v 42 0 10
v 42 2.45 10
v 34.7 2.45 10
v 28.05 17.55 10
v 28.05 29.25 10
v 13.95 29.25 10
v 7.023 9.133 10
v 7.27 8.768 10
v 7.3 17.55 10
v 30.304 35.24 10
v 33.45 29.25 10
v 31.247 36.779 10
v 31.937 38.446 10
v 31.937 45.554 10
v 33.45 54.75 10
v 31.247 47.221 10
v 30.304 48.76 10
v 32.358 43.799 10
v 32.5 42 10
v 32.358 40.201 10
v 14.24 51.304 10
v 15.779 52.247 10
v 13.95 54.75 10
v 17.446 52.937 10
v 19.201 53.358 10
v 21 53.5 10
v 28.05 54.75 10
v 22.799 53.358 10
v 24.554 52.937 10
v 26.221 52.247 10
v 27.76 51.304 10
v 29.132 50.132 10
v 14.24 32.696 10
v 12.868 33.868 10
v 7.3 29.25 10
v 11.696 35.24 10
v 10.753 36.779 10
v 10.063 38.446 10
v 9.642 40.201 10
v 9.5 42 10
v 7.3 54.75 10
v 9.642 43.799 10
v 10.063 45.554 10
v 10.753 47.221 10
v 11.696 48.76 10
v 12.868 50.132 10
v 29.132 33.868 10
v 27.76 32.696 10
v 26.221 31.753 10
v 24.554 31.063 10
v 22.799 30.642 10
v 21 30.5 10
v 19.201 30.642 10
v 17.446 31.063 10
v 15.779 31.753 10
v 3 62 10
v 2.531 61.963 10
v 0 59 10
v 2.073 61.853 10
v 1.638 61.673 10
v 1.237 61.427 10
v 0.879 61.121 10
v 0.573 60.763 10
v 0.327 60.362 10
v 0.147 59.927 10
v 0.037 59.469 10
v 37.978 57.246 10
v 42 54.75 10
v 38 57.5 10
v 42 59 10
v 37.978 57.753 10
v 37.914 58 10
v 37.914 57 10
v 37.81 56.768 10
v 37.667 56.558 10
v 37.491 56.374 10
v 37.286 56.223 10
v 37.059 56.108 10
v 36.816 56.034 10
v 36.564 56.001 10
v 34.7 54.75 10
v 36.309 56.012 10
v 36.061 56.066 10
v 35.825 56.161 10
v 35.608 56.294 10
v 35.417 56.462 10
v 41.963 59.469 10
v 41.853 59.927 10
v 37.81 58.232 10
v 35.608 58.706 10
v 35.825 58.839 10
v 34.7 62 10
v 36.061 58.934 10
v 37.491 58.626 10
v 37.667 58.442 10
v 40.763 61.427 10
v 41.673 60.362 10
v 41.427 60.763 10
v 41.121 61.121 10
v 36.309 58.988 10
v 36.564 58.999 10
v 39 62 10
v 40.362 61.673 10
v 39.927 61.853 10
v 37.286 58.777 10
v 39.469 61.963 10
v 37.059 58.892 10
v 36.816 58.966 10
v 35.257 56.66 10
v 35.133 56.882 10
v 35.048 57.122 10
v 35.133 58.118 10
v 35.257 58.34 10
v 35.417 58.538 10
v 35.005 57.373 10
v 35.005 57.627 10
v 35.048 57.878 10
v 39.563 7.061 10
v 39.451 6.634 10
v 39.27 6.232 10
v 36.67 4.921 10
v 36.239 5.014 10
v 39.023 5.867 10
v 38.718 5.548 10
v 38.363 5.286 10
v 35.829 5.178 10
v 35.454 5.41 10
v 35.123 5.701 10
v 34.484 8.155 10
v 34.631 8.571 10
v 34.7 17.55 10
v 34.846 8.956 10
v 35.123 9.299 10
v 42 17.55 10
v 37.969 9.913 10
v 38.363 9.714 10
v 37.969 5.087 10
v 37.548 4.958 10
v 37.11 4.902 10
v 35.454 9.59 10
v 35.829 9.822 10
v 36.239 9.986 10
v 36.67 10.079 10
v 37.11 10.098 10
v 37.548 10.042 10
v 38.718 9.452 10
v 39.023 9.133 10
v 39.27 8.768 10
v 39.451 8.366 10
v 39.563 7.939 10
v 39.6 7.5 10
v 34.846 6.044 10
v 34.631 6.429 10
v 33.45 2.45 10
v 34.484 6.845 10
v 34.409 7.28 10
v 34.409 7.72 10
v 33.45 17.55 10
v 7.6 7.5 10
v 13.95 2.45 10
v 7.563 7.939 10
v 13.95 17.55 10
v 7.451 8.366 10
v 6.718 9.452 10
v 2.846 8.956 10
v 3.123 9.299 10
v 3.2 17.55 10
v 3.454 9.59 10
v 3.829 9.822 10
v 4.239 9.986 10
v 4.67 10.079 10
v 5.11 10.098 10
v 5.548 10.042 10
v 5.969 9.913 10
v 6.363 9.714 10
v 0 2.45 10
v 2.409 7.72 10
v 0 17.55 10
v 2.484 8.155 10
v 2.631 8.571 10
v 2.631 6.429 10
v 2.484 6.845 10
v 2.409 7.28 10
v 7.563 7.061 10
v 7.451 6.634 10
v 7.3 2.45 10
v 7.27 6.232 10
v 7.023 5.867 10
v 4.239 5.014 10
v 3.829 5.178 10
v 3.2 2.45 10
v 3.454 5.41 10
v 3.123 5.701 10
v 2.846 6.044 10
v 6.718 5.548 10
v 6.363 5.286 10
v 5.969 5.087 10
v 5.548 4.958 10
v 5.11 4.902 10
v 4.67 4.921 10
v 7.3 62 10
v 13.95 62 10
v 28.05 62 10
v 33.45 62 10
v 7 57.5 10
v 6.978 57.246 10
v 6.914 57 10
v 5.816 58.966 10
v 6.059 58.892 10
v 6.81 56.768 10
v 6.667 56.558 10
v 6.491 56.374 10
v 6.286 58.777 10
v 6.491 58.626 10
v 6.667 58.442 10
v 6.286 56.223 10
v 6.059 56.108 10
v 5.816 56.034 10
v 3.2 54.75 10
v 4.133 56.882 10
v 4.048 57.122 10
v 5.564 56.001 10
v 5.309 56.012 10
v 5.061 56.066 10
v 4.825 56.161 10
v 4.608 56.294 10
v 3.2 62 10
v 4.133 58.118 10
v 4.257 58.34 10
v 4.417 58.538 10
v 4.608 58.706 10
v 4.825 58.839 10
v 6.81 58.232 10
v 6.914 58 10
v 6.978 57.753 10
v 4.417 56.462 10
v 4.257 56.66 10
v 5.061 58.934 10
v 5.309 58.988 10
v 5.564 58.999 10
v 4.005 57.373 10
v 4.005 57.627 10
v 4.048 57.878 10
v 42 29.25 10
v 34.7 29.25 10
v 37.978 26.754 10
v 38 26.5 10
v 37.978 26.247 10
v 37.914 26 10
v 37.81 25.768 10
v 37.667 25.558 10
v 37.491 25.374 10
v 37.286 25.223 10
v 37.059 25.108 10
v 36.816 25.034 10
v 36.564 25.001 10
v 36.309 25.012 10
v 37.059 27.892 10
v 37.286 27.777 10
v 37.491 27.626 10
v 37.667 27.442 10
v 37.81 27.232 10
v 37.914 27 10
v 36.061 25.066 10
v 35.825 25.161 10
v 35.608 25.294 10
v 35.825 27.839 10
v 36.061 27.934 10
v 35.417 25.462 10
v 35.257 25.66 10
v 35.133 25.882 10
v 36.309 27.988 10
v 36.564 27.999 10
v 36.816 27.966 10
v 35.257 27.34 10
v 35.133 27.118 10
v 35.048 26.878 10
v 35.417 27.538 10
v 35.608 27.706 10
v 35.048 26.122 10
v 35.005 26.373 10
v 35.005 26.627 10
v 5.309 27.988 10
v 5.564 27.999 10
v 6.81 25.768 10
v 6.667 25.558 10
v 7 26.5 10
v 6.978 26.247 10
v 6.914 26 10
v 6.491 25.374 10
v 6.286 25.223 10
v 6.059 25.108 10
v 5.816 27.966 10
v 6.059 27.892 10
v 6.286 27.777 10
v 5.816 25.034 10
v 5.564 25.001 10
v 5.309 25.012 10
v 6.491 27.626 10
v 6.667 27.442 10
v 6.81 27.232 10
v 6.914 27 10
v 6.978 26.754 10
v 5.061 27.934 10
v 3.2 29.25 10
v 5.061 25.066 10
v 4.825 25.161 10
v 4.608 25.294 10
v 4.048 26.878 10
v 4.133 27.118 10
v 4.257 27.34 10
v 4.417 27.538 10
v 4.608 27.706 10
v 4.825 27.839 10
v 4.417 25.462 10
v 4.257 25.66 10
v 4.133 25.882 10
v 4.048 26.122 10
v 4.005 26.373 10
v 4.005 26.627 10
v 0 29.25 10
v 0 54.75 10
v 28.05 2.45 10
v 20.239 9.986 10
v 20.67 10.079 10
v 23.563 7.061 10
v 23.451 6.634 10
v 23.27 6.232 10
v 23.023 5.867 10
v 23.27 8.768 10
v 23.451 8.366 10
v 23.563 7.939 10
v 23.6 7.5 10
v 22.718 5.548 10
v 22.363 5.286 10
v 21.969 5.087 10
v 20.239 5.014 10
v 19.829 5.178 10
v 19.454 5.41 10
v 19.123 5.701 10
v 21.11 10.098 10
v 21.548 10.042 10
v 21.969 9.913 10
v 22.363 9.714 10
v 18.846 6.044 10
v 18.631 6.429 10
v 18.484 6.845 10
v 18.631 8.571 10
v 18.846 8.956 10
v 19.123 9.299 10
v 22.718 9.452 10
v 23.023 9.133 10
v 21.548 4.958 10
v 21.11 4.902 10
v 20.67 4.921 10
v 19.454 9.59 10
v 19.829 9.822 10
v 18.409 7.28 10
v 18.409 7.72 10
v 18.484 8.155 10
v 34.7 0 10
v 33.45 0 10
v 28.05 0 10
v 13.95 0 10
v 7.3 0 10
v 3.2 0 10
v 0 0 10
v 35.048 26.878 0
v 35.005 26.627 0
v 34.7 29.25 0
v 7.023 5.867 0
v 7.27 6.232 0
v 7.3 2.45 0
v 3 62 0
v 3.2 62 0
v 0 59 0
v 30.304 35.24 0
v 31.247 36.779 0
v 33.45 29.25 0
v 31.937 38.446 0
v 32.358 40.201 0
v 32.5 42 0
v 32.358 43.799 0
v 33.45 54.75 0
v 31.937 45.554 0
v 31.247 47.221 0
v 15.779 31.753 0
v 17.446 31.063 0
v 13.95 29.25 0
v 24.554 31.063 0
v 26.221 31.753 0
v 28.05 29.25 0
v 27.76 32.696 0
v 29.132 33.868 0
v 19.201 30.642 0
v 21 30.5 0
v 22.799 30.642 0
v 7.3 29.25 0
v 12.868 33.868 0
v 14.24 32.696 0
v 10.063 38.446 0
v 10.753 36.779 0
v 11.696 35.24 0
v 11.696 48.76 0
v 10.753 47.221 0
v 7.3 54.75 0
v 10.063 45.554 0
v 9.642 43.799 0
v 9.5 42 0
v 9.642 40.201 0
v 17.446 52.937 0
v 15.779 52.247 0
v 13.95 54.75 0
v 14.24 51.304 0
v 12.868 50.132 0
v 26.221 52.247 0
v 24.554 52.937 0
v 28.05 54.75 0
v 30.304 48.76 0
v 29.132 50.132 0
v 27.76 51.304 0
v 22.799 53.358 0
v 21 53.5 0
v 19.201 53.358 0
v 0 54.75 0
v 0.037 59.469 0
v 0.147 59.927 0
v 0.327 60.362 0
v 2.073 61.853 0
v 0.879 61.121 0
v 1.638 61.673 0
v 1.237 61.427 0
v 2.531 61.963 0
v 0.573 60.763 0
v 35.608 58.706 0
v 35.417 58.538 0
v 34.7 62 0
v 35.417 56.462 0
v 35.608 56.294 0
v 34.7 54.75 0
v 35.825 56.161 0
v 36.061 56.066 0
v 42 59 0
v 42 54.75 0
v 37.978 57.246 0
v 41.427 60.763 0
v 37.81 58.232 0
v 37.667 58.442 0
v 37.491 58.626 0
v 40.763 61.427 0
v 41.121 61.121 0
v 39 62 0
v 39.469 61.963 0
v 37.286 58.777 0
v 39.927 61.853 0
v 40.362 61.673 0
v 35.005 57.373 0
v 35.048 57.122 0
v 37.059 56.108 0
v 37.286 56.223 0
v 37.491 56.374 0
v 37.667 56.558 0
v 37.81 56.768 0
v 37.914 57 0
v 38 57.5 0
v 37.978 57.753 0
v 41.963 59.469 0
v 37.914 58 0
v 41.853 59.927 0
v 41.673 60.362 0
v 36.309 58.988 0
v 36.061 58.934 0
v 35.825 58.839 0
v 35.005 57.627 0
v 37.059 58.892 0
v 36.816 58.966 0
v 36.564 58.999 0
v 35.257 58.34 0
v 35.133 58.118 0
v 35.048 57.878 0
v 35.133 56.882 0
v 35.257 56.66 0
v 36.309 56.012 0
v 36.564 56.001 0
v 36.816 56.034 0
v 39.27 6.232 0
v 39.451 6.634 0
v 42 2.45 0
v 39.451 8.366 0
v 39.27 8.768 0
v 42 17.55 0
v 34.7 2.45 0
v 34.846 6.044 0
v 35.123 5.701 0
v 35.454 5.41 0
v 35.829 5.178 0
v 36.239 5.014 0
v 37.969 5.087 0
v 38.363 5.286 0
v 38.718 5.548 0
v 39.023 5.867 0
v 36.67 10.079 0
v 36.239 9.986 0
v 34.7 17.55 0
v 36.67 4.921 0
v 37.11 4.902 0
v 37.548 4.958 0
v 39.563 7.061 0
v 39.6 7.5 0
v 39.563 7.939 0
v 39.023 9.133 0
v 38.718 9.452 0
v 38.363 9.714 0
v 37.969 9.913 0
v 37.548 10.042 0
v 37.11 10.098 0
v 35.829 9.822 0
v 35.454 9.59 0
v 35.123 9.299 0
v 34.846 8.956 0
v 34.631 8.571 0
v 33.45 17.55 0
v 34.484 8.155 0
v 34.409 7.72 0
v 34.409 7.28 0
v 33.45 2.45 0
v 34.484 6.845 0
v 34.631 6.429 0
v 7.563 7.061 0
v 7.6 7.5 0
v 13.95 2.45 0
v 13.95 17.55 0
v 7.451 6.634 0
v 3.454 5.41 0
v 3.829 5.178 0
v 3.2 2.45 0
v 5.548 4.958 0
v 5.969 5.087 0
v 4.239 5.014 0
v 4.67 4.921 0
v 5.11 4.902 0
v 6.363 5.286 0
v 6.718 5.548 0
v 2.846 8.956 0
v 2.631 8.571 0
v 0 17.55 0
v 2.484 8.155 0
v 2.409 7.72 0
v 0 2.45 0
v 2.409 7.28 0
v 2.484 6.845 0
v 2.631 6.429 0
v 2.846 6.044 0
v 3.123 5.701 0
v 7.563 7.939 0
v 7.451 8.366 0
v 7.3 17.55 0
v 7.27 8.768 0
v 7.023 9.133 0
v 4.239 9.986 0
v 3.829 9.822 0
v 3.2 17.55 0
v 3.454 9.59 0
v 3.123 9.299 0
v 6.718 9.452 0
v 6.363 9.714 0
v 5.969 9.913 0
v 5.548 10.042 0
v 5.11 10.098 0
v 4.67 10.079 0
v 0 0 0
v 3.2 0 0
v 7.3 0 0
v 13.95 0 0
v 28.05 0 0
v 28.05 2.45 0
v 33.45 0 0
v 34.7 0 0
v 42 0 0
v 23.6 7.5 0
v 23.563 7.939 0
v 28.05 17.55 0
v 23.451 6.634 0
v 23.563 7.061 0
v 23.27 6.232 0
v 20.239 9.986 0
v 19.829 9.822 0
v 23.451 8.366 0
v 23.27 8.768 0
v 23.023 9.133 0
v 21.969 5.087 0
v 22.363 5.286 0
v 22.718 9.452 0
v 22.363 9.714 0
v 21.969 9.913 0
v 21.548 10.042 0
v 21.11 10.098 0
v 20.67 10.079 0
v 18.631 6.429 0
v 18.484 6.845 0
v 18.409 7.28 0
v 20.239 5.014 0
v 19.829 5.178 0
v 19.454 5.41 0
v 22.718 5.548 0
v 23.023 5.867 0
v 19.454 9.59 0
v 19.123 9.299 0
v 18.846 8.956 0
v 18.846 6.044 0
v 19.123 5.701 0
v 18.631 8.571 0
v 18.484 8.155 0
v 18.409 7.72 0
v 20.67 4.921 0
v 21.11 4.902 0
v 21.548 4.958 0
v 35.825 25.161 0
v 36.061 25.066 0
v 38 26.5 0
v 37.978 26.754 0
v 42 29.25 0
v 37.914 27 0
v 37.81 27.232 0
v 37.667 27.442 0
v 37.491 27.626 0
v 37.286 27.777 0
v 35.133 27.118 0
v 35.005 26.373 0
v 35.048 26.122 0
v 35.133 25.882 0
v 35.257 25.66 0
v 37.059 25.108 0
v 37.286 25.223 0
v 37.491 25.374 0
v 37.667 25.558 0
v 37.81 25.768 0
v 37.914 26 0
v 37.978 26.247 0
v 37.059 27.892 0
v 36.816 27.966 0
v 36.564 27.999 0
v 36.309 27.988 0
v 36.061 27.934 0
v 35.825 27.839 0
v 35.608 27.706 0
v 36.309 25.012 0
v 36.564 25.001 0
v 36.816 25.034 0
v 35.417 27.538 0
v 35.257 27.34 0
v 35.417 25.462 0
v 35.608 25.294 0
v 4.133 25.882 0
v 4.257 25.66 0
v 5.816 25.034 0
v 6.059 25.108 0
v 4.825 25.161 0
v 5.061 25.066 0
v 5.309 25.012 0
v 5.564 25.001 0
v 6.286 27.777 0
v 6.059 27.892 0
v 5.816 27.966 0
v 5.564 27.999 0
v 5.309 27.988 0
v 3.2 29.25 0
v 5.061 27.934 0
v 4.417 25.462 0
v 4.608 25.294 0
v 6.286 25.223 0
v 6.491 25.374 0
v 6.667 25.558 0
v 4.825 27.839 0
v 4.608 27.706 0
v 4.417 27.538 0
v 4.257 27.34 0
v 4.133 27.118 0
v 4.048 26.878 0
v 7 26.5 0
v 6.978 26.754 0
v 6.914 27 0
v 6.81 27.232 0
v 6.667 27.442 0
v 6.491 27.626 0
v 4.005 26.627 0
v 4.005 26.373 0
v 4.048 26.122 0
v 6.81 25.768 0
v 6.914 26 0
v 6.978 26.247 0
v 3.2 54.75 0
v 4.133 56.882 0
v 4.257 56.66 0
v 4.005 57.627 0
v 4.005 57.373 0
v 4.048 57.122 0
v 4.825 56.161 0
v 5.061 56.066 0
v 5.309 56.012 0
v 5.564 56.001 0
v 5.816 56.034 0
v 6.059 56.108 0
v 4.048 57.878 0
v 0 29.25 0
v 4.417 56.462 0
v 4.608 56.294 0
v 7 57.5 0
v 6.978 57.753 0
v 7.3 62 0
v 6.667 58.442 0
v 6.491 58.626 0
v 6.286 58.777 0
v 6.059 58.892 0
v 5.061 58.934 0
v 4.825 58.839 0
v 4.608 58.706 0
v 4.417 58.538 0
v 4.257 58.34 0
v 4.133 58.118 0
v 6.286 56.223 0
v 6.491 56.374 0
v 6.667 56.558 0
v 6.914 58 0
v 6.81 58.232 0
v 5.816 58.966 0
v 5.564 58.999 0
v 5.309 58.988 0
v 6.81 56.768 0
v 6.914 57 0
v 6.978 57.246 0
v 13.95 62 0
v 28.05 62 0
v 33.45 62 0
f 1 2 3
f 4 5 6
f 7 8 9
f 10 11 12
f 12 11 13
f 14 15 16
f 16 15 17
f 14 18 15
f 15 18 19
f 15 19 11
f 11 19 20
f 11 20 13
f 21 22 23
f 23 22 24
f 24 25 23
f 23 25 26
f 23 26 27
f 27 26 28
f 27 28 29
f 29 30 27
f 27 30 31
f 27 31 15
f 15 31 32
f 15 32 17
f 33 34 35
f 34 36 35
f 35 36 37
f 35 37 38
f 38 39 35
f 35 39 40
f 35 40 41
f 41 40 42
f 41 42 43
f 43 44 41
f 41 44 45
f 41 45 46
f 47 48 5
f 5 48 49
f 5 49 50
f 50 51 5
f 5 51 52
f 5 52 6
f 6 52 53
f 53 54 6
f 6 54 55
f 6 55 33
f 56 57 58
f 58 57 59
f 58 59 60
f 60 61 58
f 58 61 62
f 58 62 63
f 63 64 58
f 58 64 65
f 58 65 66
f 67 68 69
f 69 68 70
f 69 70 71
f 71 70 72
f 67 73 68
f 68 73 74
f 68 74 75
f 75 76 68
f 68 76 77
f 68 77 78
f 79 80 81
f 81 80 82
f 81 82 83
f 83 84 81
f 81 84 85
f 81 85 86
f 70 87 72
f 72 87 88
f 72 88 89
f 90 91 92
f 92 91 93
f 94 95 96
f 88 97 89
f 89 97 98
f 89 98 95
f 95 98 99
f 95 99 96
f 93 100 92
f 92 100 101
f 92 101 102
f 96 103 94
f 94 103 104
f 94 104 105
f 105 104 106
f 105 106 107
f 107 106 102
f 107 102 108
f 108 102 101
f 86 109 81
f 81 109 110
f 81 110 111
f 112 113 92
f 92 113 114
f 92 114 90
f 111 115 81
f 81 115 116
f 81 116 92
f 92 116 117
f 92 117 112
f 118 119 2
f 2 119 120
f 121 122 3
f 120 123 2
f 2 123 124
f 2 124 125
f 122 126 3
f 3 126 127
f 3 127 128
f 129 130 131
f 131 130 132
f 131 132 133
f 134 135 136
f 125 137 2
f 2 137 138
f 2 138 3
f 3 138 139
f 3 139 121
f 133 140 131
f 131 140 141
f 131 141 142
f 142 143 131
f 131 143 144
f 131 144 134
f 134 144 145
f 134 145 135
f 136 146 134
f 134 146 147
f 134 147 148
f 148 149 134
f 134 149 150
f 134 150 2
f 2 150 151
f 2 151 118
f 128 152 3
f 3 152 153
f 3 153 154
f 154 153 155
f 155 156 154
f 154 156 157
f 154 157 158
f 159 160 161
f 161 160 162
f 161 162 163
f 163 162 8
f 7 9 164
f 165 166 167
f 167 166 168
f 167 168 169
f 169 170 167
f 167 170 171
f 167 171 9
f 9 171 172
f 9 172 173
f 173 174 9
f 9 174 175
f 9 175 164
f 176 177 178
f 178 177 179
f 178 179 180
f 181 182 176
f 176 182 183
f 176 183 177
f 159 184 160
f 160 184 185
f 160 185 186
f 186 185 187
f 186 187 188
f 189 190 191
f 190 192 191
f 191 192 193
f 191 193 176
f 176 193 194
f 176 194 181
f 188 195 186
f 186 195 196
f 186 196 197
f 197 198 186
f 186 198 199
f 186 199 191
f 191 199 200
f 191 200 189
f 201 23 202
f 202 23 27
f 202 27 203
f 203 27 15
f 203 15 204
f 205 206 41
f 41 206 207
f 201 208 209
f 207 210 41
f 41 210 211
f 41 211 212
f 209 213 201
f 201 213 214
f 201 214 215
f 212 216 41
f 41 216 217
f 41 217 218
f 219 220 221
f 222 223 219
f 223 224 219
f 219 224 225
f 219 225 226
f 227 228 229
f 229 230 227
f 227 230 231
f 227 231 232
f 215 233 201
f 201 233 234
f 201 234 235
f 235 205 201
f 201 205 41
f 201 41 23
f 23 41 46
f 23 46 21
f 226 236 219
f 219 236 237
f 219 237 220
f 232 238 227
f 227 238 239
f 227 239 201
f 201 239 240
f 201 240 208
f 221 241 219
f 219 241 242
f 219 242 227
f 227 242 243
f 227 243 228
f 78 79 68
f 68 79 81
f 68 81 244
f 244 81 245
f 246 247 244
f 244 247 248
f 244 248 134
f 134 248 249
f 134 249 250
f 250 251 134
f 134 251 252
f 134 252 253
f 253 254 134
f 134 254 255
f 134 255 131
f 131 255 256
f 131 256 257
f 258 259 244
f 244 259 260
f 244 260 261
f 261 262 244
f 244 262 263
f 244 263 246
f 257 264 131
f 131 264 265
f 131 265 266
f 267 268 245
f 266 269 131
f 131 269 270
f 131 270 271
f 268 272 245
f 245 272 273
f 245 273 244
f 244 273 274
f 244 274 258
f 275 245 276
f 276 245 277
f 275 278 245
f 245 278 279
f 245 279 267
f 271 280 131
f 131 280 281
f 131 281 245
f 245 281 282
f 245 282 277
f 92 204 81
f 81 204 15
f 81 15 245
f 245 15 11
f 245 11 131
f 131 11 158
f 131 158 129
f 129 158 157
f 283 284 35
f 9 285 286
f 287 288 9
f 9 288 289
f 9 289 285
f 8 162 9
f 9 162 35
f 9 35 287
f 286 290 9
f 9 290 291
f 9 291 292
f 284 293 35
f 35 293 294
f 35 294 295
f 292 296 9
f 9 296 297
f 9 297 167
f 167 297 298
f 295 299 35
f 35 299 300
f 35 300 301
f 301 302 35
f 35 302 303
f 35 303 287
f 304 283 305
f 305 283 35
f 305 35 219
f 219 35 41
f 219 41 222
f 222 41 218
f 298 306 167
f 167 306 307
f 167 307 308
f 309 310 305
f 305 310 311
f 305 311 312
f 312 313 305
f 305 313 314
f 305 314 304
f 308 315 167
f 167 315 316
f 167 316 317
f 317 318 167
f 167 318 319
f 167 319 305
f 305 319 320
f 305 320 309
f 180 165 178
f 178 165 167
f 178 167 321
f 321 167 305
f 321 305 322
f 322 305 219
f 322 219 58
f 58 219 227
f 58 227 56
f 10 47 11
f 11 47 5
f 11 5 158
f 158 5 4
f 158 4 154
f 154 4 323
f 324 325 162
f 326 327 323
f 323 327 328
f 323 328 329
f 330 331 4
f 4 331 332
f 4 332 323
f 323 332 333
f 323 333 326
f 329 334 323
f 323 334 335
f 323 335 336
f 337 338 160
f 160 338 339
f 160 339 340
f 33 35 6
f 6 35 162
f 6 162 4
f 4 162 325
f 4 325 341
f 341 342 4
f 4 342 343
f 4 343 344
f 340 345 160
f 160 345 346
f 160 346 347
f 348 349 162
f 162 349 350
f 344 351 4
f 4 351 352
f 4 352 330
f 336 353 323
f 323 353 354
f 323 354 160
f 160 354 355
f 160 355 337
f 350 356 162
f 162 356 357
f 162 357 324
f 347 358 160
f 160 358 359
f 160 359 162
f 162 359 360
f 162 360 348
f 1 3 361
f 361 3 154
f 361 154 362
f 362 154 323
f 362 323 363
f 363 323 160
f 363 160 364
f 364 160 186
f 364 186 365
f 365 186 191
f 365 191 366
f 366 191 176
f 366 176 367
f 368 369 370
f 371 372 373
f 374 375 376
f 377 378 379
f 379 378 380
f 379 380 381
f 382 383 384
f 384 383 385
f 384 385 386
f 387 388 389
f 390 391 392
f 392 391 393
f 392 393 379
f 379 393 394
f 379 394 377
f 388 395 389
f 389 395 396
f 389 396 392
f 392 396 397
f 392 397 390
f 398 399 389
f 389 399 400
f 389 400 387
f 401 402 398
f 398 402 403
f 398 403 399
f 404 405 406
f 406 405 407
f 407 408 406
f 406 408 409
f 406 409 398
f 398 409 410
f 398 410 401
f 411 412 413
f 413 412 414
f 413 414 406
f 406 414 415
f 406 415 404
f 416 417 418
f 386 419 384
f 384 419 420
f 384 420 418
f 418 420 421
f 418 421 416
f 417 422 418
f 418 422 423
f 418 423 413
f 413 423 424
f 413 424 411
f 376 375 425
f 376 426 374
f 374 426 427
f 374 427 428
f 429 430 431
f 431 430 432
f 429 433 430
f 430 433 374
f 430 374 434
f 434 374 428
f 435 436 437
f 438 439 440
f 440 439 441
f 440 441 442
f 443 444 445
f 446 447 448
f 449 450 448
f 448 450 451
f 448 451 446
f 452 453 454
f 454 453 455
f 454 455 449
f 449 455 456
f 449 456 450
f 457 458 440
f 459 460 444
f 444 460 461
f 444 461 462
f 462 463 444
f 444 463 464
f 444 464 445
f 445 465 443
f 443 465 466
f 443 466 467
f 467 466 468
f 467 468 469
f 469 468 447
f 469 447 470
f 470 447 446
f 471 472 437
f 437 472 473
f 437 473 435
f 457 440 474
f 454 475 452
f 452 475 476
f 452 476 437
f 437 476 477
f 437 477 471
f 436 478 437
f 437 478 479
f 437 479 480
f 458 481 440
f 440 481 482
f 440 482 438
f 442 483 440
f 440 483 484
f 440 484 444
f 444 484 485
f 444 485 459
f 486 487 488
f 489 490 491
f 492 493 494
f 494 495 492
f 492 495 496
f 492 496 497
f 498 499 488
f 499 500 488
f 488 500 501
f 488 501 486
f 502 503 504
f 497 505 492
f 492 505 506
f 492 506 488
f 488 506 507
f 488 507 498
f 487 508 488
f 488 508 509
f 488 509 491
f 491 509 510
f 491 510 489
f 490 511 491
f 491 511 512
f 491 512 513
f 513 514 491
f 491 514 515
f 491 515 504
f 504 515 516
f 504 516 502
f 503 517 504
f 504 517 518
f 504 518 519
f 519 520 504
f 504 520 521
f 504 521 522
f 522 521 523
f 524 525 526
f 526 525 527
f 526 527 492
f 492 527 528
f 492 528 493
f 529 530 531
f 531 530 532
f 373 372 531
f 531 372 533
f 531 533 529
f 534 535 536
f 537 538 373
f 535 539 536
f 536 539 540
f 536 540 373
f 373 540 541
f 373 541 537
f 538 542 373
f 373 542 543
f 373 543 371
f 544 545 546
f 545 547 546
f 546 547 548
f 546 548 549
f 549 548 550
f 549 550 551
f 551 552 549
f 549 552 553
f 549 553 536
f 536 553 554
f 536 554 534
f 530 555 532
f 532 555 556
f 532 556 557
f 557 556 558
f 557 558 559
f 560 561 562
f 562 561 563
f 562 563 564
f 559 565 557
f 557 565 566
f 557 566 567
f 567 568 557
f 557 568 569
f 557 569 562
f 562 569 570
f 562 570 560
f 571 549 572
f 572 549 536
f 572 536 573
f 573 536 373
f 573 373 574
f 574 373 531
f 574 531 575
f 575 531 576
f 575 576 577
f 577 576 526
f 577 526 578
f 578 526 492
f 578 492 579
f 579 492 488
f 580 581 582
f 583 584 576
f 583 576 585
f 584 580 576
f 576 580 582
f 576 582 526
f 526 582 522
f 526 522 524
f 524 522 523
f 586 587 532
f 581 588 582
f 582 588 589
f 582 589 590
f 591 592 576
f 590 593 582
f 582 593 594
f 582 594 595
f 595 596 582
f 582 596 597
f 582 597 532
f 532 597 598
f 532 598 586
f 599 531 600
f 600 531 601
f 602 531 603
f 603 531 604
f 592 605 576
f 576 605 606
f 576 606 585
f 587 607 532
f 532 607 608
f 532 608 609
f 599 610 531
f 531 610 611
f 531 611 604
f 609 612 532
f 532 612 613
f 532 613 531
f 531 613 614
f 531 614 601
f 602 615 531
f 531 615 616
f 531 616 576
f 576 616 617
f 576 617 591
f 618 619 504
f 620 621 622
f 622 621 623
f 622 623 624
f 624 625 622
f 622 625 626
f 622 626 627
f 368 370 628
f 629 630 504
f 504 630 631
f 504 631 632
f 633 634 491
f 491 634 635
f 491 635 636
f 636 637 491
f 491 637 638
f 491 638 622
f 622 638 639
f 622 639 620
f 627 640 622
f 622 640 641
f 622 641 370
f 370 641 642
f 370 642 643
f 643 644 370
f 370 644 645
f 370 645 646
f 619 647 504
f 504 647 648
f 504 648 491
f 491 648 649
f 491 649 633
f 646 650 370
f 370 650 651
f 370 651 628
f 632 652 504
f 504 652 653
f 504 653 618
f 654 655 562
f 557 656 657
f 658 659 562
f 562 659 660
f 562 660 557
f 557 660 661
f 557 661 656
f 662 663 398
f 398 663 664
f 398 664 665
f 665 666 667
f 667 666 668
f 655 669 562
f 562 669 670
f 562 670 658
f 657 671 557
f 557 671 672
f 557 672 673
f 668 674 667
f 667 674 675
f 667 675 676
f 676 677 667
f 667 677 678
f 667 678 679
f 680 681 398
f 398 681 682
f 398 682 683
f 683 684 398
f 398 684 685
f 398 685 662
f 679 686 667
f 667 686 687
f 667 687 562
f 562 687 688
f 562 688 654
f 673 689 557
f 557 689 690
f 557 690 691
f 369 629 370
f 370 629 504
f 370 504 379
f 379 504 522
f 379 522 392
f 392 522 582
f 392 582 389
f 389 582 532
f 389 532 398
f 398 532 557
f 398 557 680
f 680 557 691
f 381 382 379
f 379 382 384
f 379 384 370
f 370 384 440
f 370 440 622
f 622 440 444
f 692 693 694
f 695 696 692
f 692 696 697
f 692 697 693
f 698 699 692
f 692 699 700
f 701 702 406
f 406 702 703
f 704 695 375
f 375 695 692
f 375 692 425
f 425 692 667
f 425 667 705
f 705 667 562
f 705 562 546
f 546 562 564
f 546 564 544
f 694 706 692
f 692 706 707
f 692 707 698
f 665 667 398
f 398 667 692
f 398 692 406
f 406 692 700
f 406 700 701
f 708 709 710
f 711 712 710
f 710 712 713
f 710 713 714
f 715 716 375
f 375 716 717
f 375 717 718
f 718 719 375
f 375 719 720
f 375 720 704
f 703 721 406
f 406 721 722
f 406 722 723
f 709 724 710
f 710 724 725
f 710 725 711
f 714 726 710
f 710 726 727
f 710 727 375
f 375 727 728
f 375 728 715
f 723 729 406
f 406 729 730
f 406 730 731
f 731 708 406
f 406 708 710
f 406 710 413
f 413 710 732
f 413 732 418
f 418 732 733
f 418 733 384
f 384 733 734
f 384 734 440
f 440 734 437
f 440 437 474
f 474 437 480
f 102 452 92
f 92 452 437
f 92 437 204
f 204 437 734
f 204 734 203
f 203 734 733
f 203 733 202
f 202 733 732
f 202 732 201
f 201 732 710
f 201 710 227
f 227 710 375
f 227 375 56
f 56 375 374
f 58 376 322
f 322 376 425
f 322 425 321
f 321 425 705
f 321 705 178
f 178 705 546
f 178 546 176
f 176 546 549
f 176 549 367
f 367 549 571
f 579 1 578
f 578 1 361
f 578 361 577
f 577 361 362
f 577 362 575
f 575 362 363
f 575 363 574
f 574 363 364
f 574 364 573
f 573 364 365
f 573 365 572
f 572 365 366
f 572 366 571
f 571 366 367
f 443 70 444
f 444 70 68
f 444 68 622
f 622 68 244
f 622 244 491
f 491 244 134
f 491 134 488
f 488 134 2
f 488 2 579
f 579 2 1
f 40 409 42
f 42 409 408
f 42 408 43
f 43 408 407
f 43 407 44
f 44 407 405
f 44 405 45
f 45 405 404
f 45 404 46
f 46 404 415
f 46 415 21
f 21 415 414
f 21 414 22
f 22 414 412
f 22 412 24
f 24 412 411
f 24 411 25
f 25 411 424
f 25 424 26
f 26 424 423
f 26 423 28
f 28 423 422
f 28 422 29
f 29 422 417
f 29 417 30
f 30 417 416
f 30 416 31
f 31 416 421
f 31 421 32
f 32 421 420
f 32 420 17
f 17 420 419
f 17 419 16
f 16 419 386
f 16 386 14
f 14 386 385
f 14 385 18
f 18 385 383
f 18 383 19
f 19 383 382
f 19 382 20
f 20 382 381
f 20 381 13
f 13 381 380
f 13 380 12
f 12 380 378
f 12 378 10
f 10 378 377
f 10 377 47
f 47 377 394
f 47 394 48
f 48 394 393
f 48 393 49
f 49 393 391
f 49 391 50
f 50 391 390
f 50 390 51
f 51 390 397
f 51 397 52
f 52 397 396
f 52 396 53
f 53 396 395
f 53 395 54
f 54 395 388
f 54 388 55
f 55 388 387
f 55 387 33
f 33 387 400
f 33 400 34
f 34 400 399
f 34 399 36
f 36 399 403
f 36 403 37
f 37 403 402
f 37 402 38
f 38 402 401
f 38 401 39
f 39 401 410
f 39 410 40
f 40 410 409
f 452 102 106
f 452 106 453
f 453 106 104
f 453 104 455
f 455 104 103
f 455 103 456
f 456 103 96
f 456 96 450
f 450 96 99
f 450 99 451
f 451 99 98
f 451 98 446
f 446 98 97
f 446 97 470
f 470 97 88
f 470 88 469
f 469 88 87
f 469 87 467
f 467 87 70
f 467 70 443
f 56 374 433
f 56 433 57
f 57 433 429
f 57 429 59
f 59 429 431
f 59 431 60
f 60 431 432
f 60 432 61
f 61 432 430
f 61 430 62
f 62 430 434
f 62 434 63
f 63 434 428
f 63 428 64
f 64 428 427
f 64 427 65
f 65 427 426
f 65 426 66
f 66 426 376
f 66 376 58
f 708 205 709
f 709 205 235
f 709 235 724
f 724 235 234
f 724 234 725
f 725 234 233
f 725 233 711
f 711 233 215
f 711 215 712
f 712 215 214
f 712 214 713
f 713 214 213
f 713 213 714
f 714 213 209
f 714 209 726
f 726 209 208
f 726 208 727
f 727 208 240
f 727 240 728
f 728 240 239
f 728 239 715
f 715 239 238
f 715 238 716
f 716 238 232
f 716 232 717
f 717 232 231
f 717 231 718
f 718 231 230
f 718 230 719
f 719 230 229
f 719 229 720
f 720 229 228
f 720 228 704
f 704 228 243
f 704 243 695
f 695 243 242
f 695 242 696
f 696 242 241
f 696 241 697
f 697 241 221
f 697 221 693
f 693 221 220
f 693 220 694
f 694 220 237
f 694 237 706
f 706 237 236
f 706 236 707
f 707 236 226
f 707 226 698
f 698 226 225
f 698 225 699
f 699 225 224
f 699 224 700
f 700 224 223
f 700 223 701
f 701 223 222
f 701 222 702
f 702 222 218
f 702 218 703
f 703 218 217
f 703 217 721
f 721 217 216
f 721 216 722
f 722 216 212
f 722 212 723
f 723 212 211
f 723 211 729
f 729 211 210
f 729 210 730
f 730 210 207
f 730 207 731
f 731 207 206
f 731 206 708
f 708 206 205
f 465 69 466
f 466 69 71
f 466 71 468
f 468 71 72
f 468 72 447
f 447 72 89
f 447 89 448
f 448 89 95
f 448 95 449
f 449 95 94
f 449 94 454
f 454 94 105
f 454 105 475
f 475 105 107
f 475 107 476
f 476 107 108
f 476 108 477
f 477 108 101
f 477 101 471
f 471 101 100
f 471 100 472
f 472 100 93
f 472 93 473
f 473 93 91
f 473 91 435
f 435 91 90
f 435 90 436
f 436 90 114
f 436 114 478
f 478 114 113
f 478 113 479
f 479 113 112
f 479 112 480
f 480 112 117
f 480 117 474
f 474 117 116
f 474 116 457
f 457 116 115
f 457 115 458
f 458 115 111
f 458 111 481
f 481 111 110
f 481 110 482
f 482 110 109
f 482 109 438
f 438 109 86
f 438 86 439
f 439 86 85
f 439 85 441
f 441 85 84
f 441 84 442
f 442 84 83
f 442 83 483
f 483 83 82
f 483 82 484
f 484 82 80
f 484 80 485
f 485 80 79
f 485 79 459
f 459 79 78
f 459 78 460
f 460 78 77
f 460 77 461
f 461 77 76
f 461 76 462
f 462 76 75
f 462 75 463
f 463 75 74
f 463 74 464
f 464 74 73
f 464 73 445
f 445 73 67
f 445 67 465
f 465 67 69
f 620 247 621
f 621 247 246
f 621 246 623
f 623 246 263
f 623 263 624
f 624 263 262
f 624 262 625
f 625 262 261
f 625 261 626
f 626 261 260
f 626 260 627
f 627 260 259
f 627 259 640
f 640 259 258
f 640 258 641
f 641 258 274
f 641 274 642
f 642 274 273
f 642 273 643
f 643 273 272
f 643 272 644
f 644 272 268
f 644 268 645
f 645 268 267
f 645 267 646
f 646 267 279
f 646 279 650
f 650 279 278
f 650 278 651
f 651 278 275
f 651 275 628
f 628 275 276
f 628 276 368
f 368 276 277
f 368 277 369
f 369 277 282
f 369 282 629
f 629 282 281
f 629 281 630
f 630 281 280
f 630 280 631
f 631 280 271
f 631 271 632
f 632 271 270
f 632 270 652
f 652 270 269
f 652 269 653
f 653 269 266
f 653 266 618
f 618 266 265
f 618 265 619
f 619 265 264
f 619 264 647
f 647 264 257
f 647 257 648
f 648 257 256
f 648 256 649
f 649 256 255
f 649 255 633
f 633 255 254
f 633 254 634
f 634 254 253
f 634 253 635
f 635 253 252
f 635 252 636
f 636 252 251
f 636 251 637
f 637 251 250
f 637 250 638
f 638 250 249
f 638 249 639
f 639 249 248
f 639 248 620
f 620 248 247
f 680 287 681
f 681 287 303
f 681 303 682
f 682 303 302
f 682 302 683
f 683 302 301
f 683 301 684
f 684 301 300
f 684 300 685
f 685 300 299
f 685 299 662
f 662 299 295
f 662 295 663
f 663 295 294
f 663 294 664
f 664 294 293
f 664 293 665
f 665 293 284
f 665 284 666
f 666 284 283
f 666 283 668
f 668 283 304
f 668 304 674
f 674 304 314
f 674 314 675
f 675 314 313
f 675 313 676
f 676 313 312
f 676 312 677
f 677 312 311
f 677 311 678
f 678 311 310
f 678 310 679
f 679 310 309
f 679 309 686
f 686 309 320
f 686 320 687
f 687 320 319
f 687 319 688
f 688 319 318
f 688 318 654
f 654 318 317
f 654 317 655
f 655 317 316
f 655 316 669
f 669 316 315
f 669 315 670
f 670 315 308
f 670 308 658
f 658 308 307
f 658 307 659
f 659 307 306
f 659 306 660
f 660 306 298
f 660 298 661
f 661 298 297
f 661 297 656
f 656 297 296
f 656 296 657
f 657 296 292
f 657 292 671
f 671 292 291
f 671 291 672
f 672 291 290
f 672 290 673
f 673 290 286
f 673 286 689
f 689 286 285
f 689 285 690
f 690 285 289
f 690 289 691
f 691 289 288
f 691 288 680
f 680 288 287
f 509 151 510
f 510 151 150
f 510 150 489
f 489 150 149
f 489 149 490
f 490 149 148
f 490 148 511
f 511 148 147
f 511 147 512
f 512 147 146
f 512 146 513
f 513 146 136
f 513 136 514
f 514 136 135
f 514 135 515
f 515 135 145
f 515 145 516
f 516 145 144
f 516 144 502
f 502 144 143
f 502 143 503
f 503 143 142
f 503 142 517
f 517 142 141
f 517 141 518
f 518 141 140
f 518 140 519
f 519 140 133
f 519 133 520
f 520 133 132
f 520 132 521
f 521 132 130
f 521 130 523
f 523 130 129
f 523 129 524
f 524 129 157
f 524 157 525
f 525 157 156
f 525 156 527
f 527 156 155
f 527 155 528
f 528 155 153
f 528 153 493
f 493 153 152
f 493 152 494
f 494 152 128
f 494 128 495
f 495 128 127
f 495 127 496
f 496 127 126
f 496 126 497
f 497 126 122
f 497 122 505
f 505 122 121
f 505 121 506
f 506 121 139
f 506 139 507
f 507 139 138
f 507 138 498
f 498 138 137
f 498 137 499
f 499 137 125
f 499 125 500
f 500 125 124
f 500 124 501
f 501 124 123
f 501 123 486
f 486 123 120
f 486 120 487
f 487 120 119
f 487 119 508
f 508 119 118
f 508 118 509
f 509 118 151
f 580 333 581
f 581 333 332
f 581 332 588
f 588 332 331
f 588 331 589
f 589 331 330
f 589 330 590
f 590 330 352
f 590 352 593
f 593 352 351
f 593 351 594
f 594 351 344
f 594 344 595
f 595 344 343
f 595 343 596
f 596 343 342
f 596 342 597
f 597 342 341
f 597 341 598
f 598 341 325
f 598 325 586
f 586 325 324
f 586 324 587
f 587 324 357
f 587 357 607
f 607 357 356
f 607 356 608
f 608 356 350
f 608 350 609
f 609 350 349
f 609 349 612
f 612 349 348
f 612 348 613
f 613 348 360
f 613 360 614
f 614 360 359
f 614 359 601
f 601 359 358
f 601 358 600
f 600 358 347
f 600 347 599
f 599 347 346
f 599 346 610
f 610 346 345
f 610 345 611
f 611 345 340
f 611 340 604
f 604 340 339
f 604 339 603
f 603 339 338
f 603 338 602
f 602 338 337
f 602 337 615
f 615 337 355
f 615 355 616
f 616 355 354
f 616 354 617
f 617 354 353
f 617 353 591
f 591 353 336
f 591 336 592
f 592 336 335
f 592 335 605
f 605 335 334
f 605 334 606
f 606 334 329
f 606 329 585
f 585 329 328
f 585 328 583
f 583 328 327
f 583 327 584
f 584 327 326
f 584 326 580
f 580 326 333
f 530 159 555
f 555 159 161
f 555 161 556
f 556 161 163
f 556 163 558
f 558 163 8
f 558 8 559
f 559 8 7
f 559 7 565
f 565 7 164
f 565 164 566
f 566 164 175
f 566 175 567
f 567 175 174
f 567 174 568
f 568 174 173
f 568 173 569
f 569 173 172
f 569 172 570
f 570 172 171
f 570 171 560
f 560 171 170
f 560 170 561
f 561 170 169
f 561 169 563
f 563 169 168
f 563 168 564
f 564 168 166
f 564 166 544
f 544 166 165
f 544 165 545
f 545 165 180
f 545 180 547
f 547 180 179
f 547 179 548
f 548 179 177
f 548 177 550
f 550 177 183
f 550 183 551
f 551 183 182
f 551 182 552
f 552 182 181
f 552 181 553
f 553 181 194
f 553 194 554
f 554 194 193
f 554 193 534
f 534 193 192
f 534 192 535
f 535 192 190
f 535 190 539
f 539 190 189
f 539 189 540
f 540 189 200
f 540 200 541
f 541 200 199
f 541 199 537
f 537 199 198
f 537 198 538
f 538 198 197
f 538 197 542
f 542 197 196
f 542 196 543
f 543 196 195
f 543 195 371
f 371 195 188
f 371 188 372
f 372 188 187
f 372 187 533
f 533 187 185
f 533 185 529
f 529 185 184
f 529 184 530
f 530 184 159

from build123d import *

# Parameters (mm, degrees)
SKETCH1_W           = 42
SKETCH1_H           = 62
SKETCH1_R           = 11.5
BOSS_EXTRUDE1_DEPTH = 10
FILLET2_R           = 3
SKETCH2_R           = 1.5
CUT_EXTRUDE1_DEPTH  = 11
SKETCH3_R           = 2.6
CUT_EXTRUDE2_DEPTH  = 11


with BuildPart() as part:
    # Sketch1 → Boss-Extrude1 (new body)
    with BuildSketch(Plane.XY):
        with Locations((21, 31)):
            Rectangle(SKETCH1_W, SKETCH1_H)
        with Locations((21, 42)):
            Circle(SKETCH1_R, mode=Mode.SUBTRACT)
    extrude(amount=BOSS_EXTRUDE1_DEPTH)

    # Fillet2
    fillet2_edges = [part.edges().sort_by_distance(p)[0] for p in [
        (0, 62, 5),
        (42, 62, 5),
    ]]
    fillet(fillet2_edges, radius=FILLET2_R)

    # Sketch2 → Cut-Extrude1 (cut, through all)
    with BuildSketch(Plane.XY.offset(10)):
        with Locations((5.5, 57.5)):
            Circle(SKETCH2_R)
        with Locations((36.5, 57.5)):
            Circle(SKETCH2_R)
        with Locations((5.5, 26.5)):
            Circle(SKETCH2_R)
        with Locations((36.5, 26.5)):
            Circle(SKETCH2_R)
    extrude(amount=-CUT_EXTRUDE1_DEPTH, mode=Mode.SUBTRACT)

    # Sketch3 → Cut-Extrude2 (cut, through all)
    with BuildSketch(Plane.XY.offset(10)):
        with Locations((5, 7.5)):
            Circle(SKETCH3_R)
        with Locations((21, 7.5)):
            Circle(SKETCH3_R)
        with Locations((37, 7.5)):
            Circle(SKETCH3_R)
    extrude(amount=-CUT_EXTRUDE2_DEPTH, mode=Mode.SUBTRACT)


solid = part.part
